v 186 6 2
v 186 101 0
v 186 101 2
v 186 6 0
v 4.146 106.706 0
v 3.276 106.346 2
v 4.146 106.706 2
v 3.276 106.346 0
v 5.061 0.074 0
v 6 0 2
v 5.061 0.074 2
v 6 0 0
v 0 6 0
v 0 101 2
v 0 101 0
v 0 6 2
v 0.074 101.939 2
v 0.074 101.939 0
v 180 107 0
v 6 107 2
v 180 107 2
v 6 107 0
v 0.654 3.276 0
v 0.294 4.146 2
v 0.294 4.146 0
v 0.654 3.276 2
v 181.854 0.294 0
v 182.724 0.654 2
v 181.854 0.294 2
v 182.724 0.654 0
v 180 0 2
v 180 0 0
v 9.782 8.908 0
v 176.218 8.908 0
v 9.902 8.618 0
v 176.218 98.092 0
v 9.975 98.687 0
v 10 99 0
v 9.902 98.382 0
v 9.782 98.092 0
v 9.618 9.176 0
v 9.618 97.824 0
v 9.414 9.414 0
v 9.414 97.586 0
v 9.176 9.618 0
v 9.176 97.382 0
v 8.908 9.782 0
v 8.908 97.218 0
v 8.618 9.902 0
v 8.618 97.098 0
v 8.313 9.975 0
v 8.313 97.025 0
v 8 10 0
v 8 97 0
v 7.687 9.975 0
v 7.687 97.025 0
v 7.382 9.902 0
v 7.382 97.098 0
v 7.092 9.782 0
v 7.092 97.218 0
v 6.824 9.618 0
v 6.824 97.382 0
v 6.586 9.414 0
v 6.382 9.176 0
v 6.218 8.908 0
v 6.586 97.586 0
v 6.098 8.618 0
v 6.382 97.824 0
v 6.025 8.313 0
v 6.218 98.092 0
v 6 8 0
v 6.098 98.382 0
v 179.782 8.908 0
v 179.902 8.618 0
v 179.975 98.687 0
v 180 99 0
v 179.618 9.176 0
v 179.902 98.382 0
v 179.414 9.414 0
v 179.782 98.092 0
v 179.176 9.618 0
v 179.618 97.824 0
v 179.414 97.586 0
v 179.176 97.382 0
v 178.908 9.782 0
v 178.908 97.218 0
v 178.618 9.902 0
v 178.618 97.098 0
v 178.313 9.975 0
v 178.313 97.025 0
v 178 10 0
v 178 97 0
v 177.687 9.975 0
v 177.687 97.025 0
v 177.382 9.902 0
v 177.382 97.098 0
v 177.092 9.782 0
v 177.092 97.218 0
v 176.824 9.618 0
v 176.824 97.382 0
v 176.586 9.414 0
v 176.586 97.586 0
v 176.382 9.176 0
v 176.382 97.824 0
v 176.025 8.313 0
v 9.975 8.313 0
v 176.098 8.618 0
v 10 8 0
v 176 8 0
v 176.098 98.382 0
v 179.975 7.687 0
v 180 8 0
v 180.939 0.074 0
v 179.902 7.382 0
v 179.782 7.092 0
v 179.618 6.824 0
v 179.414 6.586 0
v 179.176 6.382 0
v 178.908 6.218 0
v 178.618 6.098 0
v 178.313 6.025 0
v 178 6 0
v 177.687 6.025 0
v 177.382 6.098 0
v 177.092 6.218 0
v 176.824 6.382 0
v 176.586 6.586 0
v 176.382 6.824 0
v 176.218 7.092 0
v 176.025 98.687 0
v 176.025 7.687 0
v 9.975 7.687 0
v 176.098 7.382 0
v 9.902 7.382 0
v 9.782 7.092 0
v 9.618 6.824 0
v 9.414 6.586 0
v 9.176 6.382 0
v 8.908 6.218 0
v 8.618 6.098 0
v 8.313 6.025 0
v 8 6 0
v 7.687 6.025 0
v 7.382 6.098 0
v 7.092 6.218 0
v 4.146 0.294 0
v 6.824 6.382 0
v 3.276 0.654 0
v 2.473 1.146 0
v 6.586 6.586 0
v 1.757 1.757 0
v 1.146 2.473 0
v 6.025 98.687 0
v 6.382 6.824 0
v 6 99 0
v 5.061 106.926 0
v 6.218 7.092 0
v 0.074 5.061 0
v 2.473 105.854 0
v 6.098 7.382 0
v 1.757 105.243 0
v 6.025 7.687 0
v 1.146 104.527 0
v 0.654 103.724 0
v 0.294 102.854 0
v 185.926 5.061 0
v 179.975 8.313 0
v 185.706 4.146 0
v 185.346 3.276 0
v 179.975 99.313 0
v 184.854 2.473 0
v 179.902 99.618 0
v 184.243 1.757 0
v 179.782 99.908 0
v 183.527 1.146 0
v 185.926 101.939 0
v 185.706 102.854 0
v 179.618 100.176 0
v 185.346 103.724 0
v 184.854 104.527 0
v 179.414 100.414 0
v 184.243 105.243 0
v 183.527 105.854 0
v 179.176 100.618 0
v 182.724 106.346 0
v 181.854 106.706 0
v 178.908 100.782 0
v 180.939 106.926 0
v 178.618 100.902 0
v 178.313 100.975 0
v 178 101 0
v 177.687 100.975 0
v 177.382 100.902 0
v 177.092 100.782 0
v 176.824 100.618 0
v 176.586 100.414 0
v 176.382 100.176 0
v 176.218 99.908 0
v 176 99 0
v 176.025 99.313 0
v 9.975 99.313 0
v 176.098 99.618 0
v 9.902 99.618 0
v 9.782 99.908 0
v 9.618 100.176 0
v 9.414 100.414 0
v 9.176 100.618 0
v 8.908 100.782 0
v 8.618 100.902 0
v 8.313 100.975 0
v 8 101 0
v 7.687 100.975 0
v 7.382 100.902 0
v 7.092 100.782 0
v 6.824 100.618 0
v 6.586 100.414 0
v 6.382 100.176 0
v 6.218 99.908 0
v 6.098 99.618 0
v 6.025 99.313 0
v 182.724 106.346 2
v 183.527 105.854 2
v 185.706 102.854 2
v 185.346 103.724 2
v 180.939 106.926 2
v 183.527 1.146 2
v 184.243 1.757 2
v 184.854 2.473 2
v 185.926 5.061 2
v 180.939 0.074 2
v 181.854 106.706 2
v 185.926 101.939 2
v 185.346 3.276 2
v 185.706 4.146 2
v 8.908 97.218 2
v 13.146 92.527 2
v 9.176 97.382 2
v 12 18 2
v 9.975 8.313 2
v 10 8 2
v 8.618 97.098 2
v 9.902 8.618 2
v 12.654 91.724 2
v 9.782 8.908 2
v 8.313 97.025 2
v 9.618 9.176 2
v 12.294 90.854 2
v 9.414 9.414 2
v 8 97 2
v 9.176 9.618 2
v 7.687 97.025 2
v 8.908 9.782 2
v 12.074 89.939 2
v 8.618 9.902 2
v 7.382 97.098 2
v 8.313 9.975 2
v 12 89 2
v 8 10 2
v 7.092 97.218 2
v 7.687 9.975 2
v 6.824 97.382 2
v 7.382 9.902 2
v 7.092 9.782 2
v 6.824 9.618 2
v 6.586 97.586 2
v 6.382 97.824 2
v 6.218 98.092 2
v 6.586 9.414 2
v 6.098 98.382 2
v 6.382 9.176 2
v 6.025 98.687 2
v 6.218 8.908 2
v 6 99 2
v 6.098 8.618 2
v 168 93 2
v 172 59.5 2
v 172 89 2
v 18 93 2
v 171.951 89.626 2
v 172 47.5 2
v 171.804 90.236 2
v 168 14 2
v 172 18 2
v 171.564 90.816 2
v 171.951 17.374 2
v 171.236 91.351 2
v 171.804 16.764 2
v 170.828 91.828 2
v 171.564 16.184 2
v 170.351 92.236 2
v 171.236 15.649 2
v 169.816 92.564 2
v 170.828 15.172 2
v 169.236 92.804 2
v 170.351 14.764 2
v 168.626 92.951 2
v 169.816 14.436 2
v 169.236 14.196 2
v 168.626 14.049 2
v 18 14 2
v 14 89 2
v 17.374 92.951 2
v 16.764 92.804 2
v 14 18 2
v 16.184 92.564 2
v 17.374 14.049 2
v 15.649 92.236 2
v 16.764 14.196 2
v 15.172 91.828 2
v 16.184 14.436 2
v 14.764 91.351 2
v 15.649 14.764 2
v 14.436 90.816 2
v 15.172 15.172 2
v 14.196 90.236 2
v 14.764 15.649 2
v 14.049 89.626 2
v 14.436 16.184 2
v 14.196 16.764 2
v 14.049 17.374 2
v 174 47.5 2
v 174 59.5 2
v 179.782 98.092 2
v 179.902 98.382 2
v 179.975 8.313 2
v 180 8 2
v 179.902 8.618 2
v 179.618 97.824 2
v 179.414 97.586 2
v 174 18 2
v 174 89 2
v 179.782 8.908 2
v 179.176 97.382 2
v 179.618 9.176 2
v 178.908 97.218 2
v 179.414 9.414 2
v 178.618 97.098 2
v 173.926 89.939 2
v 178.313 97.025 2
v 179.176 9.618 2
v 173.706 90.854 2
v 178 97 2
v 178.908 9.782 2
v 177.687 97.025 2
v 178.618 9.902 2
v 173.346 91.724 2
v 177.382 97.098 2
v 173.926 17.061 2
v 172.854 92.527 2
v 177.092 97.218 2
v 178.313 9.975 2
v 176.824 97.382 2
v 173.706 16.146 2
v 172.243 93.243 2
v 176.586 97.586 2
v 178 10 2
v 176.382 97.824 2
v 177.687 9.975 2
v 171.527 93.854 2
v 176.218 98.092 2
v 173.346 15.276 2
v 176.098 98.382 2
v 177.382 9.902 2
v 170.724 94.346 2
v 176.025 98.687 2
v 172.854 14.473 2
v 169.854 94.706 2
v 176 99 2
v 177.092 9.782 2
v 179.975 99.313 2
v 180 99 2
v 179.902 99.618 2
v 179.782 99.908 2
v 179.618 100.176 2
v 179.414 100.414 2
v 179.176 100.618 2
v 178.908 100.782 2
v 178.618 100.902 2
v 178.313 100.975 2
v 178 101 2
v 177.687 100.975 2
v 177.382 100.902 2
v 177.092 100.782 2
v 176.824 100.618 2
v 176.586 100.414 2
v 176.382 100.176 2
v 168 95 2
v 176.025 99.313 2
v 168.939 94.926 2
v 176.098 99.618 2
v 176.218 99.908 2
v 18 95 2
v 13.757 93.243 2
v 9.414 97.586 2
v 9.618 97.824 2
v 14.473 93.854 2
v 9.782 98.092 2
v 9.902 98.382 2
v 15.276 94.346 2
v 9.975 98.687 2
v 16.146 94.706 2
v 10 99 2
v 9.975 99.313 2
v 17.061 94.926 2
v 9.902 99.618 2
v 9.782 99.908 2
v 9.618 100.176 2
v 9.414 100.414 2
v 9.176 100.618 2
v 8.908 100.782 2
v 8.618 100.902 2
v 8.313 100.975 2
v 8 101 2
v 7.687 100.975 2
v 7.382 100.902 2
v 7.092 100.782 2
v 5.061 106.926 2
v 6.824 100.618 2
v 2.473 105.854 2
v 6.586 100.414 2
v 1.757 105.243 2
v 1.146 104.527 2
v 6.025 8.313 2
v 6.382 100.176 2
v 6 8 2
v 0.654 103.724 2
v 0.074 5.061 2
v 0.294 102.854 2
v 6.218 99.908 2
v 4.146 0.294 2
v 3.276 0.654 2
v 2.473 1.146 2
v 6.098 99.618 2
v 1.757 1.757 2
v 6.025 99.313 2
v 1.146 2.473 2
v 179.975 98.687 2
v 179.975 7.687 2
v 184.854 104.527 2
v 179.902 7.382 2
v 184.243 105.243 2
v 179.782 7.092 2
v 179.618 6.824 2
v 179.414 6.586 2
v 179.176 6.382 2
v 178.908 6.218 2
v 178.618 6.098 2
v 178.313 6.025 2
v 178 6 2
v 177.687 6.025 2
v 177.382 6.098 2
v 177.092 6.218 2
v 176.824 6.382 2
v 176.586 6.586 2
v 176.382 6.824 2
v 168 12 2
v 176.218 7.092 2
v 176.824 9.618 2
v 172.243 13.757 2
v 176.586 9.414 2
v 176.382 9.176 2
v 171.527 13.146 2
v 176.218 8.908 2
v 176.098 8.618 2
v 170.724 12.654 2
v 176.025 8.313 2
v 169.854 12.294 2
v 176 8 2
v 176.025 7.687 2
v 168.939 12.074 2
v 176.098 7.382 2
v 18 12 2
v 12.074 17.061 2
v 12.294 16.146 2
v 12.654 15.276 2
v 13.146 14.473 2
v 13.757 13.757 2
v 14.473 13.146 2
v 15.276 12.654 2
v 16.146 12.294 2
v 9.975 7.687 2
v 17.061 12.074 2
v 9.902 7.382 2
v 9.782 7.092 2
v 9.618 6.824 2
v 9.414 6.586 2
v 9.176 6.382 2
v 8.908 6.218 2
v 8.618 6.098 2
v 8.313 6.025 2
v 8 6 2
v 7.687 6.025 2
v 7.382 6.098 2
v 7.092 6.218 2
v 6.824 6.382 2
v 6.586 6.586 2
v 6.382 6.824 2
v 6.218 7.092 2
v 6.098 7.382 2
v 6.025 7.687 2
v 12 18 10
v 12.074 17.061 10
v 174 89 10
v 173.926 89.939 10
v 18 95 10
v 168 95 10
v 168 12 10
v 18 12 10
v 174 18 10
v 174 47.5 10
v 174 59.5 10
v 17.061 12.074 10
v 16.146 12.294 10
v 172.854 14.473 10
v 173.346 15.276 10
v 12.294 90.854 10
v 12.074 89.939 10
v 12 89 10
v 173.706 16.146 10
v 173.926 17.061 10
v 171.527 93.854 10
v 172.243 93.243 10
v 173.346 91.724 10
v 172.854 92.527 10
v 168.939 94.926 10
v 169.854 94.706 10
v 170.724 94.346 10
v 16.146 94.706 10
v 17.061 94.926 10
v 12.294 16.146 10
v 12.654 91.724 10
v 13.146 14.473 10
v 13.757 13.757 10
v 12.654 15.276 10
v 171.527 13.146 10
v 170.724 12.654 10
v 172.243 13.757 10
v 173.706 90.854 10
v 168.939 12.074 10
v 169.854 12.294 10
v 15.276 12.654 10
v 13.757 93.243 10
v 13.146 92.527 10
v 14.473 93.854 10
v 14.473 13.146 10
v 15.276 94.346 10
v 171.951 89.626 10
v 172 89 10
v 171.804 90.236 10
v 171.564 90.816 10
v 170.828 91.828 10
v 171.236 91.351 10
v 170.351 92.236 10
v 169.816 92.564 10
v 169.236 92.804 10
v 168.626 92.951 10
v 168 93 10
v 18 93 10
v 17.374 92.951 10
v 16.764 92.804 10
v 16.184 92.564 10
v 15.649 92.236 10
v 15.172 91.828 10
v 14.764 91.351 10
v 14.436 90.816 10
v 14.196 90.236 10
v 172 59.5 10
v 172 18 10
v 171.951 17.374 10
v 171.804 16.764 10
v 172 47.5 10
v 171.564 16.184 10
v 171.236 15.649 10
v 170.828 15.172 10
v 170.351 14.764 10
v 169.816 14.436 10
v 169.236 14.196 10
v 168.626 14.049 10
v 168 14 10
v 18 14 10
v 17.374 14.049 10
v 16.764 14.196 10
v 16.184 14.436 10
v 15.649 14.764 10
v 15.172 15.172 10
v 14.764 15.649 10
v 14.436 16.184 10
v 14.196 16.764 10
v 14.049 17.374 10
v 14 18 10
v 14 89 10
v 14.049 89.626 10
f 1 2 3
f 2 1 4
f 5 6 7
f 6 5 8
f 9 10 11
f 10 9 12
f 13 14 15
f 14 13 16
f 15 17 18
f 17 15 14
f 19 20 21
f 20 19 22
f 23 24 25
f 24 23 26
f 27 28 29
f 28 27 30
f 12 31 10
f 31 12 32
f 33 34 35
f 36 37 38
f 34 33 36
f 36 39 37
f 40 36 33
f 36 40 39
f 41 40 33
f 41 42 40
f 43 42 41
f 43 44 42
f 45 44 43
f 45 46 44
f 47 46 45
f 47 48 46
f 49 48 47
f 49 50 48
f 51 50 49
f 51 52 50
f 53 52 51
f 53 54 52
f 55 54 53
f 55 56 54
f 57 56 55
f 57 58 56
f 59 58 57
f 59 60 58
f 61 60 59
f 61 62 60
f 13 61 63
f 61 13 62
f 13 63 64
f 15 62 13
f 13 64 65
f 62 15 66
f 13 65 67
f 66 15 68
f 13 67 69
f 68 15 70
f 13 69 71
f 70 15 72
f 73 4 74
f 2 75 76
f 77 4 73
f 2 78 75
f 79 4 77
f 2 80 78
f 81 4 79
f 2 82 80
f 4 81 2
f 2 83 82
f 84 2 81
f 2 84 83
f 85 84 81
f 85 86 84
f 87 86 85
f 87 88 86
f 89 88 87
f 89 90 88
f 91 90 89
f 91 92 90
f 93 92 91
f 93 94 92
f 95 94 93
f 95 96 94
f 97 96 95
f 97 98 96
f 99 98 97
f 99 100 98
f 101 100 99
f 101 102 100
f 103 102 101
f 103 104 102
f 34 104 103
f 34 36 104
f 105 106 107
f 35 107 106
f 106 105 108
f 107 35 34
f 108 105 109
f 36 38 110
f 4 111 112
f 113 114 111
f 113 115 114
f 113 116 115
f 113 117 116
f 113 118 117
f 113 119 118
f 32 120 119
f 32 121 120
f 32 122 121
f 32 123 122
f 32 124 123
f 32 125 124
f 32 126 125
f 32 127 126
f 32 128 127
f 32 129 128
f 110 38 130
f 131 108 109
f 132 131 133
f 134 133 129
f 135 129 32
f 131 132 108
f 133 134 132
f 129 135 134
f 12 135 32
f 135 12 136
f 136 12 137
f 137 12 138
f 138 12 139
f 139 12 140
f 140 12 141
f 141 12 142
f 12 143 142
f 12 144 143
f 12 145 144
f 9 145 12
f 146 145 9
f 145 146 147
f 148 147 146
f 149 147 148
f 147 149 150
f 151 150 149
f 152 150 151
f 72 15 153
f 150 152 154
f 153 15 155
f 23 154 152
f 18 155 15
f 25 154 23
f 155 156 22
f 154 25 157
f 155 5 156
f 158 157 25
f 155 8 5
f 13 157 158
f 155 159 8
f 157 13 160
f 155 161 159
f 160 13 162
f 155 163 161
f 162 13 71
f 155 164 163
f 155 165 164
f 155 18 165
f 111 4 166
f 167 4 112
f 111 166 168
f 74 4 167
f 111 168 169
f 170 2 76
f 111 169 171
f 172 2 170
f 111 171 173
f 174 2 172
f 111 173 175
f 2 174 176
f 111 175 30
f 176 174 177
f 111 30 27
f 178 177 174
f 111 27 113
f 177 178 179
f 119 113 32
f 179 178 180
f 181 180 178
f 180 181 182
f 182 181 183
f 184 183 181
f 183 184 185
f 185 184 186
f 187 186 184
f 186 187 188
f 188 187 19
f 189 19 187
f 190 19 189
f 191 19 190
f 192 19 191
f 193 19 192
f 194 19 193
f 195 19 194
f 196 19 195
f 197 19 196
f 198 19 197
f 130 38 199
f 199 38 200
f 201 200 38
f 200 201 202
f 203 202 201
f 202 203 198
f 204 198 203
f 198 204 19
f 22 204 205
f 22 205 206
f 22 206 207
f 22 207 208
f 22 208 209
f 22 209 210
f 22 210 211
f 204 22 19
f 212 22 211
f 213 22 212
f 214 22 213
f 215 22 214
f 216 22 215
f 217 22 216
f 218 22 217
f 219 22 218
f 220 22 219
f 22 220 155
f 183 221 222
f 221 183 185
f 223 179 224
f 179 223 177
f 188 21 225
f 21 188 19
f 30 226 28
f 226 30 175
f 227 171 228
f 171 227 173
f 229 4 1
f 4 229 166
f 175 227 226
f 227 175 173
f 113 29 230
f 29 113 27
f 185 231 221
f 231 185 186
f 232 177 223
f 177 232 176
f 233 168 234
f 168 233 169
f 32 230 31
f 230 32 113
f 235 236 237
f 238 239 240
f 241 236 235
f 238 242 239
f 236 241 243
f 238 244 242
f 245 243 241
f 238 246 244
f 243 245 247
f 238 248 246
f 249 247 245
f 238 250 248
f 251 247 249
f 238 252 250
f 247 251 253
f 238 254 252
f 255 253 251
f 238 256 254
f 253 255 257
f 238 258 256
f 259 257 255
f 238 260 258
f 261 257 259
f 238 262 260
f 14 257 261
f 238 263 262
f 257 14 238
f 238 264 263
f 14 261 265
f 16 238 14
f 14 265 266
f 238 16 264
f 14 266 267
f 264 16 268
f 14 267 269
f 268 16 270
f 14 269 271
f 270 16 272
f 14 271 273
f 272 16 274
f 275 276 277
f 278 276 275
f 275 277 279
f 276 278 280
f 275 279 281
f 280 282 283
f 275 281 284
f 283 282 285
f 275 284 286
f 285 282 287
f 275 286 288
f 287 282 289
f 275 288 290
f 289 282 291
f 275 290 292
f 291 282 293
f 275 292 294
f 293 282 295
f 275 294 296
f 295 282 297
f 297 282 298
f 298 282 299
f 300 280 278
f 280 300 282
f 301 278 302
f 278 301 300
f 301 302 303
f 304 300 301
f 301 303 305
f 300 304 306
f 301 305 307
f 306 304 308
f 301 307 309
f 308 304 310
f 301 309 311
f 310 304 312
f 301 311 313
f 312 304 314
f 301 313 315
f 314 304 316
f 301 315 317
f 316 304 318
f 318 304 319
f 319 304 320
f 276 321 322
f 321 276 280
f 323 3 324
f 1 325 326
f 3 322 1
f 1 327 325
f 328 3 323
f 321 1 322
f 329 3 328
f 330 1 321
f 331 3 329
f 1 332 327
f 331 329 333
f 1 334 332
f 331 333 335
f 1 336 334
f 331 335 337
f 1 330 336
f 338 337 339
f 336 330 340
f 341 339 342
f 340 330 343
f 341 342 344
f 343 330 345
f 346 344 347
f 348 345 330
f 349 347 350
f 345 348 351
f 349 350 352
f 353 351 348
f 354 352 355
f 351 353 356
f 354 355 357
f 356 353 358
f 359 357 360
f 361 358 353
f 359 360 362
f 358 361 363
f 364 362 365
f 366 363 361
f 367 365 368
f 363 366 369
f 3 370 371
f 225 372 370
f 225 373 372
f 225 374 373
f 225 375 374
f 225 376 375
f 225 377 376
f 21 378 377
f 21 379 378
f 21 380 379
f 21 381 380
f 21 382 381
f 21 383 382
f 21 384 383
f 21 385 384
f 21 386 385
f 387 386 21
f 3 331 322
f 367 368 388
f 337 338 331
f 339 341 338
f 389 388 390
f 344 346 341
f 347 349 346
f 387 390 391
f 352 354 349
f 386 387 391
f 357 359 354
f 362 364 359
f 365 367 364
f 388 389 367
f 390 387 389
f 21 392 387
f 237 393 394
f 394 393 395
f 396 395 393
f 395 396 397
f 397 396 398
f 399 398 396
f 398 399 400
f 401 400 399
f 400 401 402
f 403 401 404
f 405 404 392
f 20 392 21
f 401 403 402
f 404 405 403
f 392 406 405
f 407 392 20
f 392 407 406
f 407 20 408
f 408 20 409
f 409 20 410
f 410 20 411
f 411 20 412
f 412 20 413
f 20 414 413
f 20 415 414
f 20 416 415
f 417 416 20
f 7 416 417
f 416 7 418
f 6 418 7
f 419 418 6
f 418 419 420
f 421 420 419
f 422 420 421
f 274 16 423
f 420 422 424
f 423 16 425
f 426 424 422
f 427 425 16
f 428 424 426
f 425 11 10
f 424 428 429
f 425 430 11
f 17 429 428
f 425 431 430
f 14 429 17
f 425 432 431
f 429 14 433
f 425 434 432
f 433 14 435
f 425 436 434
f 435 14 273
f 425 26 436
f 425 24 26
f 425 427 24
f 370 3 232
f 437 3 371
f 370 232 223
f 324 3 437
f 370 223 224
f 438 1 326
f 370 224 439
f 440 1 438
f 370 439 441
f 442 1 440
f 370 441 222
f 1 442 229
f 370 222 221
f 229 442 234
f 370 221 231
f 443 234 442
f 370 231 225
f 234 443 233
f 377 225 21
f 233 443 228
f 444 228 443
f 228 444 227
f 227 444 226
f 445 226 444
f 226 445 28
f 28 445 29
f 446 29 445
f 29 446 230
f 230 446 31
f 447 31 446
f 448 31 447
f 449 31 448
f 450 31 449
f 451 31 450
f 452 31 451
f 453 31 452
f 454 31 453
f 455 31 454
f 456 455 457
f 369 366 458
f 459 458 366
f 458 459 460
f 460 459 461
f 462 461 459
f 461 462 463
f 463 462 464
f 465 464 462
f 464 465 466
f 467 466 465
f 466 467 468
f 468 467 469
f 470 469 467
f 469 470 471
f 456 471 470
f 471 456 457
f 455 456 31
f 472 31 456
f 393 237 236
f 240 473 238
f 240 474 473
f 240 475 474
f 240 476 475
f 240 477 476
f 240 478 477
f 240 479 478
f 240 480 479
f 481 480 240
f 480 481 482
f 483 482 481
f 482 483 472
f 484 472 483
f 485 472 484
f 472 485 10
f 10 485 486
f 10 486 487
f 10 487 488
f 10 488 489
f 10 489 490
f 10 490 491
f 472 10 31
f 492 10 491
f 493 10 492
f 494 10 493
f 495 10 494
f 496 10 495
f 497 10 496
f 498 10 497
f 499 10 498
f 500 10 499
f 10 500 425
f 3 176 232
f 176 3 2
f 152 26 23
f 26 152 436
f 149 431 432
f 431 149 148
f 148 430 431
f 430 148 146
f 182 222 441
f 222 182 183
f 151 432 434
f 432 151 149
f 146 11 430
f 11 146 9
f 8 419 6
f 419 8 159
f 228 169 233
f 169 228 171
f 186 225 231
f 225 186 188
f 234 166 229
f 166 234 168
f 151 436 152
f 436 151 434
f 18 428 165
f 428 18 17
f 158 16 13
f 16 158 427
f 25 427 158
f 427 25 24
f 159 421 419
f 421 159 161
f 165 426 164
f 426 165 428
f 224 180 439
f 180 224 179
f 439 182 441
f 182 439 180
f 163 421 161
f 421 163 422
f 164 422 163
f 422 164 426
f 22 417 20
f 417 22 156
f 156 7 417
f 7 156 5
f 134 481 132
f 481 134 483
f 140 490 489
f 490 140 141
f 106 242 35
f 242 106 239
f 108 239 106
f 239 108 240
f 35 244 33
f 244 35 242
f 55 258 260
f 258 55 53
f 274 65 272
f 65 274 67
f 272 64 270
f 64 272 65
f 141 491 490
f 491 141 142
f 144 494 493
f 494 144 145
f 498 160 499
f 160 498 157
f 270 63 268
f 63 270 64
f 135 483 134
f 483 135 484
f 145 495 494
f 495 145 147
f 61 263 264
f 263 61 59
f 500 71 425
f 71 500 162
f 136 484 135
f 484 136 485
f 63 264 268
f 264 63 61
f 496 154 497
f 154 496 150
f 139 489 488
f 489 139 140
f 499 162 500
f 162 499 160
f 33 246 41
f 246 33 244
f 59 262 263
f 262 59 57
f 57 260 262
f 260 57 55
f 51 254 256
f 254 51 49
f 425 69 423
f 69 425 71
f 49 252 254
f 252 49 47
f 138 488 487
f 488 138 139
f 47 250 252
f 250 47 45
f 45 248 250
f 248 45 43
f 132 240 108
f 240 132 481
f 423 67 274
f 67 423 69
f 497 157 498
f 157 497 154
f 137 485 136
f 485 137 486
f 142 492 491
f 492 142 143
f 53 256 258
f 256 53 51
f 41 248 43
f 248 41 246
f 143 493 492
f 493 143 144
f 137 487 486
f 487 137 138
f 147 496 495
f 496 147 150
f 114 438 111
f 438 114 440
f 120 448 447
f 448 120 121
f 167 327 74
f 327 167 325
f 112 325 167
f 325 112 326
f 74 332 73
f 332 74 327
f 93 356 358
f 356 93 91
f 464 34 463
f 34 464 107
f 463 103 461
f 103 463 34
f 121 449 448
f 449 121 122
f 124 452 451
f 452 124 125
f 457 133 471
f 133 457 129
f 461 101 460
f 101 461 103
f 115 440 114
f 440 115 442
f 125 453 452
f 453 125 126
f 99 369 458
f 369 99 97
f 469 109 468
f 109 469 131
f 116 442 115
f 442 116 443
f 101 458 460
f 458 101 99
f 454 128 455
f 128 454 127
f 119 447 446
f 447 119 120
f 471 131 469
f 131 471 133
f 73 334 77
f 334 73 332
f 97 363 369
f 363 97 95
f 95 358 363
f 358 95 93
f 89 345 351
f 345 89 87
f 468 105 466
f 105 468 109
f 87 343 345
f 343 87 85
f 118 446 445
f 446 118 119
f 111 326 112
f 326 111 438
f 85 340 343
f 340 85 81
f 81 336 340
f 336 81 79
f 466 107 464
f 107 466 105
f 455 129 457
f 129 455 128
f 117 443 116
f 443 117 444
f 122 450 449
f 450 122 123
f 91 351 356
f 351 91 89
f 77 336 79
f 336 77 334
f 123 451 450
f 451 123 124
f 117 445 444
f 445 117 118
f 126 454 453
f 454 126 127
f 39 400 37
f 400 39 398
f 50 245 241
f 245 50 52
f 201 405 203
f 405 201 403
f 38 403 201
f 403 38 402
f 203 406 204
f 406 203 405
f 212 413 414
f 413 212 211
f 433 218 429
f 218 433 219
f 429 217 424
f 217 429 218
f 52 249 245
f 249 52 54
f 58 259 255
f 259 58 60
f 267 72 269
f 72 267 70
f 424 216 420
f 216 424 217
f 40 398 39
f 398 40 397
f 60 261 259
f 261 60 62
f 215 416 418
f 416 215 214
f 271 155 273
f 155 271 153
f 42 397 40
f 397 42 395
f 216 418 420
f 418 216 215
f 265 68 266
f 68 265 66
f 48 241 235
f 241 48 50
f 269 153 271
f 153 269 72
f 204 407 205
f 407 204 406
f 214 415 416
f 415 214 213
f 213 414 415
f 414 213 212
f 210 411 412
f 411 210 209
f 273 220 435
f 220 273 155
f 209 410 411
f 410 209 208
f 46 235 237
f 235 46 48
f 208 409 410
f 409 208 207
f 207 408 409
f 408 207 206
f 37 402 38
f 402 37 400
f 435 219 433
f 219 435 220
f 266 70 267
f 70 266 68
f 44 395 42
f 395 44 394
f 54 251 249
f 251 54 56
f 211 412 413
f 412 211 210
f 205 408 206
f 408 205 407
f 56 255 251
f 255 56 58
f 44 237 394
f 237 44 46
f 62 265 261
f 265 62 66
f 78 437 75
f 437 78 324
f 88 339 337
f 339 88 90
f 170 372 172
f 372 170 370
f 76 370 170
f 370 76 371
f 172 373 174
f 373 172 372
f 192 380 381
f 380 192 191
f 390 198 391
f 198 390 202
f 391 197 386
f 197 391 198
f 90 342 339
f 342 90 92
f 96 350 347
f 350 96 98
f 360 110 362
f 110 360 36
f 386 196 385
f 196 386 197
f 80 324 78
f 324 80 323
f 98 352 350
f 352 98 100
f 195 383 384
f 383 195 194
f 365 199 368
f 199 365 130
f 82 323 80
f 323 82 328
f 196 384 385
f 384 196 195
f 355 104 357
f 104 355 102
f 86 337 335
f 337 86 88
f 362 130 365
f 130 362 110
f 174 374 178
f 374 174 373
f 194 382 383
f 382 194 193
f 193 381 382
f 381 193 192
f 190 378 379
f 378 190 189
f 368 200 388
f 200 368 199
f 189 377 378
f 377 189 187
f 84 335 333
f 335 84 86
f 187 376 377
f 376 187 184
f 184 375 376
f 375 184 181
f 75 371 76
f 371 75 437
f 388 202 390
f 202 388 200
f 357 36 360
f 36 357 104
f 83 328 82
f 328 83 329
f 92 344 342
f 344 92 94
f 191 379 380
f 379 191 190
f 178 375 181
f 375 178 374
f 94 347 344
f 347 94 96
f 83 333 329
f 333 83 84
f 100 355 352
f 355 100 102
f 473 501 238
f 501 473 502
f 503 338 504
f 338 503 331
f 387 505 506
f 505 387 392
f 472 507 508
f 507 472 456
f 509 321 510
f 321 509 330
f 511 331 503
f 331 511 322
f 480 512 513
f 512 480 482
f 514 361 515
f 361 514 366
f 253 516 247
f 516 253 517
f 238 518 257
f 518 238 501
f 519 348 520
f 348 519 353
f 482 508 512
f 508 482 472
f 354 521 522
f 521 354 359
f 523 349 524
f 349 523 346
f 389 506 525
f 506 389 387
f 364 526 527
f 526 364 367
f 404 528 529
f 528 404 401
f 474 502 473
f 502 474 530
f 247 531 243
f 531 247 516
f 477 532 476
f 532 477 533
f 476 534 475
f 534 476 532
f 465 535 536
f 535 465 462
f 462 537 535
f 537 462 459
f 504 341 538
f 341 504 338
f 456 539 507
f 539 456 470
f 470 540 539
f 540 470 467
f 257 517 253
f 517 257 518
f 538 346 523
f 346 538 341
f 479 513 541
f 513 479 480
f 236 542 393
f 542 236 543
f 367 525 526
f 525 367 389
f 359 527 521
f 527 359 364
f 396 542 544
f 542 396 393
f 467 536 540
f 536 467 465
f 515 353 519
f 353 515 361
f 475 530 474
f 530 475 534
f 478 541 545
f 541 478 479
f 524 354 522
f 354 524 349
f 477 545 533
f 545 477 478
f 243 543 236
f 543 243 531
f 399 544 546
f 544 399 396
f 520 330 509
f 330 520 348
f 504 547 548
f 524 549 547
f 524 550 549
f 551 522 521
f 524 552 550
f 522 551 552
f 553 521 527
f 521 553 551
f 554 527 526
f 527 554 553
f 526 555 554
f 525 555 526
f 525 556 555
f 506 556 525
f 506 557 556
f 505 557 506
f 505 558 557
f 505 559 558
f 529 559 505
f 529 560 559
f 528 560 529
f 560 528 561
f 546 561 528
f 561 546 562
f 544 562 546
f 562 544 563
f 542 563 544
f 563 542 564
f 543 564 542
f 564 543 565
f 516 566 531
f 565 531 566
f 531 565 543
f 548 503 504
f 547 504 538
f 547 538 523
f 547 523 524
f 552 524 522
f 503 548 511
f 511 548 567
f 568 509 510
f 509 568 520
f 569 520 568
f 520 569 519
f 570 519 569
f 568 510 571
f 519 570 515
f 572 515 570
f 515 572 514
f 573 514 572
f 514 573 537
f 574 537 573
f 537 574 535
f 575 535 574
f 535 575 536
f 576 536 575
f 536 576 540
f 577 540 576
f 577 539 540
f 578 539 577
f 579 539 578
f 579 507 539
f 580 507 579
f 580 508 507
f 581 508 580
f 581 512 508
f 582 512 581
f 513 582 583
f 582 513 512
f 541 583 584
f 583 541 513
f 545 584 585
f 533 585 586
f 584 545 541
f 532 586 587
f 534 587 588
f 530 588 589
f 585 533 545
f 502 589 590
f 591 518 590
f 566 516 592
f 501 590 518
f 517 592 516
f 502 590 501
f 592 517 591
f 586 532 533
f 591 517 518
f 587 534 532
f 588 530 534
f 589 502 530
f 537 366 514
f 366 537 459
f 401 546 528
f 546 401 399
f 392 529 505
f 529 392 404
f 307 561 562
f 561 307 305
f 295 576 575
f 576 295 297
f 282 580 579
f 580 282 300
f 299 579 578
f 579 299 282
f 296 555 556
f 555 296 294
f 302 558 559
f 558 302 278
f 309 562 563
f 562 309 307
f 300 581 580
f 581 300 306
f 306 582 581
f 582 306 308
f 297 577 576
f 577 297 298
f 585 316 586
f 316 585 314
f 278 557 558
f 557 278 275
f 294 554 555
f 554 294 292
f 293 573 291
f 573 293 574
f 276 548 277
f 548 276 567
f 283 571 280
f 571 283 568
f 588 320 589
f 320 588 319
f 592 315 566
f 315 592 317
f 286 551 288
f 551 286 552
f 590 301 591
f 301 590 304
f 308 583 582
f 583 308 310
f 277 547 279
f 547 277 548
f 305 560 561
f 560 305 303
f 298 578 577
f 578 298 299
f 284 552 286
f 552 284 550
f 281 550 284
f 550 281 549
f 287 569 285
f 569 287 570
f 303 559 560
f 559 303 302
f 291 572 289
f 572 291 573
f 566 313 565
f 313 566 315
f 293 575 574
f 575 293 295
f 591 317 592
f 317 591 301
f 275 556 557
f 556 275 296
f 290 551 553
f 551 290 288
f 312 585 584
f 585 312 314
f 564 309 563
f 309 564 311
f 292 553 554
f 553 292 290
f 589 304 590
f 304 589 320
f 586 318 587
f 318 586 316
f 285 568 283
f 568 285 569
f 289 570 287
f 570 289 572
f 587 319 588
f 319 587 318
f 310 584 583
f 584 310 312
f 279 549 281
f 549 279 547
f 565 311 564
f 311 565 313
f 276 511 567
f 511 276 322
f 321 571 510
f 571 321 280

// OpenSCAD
// file: params.scad
$fn = 40;

wall = 2;
w = 162;    // w rzeczywistości jest o 5mm mniej
d = 83;     // w rzeczywistości jest o 5mm mniej
h = 10;
r = 6;

cut_w = 12;
cut_h = 10;
cut_z = 2;

margin = 12;        // +2mm aby wtyczka kabla weszła 
flange_h = wall;
screw_r = 2;
screw_offset = 8;
skirt_h = wall + 1;
skirt_wall = 2;
fit_clearance = 0.25;

flange_w = w + 2*margin;
flange_d = d + 2*margin;

x_start = margin + wall + 10;
x_end   = margin + w - wall - 8;
opening_lx = x_end - x_start;

y_start = margin + wall + 2;
y_end   = margin + d - wall - 2;
opening_ly = y_end - y_start;


opening_r = 4;

desired_wall = 2;   // faktyczna grubość ścianki, jaką chcesz mieć (prostopadle do skosu)

rise = h - skirt_h;
run_x = (flange_w + 2*skirt_wall - opening_lx) / 2;
run_y = (flange_d + 2*skirt_wall - opening_ly) / 2;

// bierzemy bardziej płaski kierunek (większy run = cieńsza ścianka), żeby zagwarantować
// minimum wszędzie
run_max = max(run_x, run_y);
slant = sqrt(rise*rise + run_max*run_max);

top_wall = desired_wall * slant / rise;   // to jest teraz Twój "shrink" w XY

module rounded_base(w, d, h, r) {
    hull() {
        translate([r, r, 0]) cylinder(r=r, h=h);
        translate([w-r, r, 0]) cylinder(r=r, h=h);
        translate([r, d-r, 0]) cylinder(r=r, h=h);
        translate([w-r, d-r, 0]) cylinder(r=r, h=h);
    }
}
// main file
include <params.scad>

module flange() {
    difference() {
        rounded_base(w + 2*margin, d + 2*margin, flange_h, r);
        translate([screw_offset, screw_offset, -1]) cylinder(r=screw_r, h=flange_h+2);
        translate([w+2*margin-screw_offset, screw_offset, -1]) cylinder(r=screw_r, h=flange_h+2);
        translate([screw_offset, d+2*margin-screw_offset, -1]) cylinder(r=screw_r, h=flange_h+2);
        translate([w+2*margin-screw_offset, d+2*margin-screw_offset, -1]) cylinder(r=screw_r, h=flange_h+2);
    }
}

module bottom_assembly(){
    union() {
        flange();
        translate([margin, margin, 0])
        difference() {
            rounded_base(w, d, h, r);
            translate([wall, wall, wall])
                rounded_base(w - 2*wall, d - 2*wall, h, r - wall);
            translate([w-wall-1, d/2 - cut_w/2, cut_z])
                cube([wall + 2, cut_w, cut_h]);
        }
    }
}

bottom_assembly();
